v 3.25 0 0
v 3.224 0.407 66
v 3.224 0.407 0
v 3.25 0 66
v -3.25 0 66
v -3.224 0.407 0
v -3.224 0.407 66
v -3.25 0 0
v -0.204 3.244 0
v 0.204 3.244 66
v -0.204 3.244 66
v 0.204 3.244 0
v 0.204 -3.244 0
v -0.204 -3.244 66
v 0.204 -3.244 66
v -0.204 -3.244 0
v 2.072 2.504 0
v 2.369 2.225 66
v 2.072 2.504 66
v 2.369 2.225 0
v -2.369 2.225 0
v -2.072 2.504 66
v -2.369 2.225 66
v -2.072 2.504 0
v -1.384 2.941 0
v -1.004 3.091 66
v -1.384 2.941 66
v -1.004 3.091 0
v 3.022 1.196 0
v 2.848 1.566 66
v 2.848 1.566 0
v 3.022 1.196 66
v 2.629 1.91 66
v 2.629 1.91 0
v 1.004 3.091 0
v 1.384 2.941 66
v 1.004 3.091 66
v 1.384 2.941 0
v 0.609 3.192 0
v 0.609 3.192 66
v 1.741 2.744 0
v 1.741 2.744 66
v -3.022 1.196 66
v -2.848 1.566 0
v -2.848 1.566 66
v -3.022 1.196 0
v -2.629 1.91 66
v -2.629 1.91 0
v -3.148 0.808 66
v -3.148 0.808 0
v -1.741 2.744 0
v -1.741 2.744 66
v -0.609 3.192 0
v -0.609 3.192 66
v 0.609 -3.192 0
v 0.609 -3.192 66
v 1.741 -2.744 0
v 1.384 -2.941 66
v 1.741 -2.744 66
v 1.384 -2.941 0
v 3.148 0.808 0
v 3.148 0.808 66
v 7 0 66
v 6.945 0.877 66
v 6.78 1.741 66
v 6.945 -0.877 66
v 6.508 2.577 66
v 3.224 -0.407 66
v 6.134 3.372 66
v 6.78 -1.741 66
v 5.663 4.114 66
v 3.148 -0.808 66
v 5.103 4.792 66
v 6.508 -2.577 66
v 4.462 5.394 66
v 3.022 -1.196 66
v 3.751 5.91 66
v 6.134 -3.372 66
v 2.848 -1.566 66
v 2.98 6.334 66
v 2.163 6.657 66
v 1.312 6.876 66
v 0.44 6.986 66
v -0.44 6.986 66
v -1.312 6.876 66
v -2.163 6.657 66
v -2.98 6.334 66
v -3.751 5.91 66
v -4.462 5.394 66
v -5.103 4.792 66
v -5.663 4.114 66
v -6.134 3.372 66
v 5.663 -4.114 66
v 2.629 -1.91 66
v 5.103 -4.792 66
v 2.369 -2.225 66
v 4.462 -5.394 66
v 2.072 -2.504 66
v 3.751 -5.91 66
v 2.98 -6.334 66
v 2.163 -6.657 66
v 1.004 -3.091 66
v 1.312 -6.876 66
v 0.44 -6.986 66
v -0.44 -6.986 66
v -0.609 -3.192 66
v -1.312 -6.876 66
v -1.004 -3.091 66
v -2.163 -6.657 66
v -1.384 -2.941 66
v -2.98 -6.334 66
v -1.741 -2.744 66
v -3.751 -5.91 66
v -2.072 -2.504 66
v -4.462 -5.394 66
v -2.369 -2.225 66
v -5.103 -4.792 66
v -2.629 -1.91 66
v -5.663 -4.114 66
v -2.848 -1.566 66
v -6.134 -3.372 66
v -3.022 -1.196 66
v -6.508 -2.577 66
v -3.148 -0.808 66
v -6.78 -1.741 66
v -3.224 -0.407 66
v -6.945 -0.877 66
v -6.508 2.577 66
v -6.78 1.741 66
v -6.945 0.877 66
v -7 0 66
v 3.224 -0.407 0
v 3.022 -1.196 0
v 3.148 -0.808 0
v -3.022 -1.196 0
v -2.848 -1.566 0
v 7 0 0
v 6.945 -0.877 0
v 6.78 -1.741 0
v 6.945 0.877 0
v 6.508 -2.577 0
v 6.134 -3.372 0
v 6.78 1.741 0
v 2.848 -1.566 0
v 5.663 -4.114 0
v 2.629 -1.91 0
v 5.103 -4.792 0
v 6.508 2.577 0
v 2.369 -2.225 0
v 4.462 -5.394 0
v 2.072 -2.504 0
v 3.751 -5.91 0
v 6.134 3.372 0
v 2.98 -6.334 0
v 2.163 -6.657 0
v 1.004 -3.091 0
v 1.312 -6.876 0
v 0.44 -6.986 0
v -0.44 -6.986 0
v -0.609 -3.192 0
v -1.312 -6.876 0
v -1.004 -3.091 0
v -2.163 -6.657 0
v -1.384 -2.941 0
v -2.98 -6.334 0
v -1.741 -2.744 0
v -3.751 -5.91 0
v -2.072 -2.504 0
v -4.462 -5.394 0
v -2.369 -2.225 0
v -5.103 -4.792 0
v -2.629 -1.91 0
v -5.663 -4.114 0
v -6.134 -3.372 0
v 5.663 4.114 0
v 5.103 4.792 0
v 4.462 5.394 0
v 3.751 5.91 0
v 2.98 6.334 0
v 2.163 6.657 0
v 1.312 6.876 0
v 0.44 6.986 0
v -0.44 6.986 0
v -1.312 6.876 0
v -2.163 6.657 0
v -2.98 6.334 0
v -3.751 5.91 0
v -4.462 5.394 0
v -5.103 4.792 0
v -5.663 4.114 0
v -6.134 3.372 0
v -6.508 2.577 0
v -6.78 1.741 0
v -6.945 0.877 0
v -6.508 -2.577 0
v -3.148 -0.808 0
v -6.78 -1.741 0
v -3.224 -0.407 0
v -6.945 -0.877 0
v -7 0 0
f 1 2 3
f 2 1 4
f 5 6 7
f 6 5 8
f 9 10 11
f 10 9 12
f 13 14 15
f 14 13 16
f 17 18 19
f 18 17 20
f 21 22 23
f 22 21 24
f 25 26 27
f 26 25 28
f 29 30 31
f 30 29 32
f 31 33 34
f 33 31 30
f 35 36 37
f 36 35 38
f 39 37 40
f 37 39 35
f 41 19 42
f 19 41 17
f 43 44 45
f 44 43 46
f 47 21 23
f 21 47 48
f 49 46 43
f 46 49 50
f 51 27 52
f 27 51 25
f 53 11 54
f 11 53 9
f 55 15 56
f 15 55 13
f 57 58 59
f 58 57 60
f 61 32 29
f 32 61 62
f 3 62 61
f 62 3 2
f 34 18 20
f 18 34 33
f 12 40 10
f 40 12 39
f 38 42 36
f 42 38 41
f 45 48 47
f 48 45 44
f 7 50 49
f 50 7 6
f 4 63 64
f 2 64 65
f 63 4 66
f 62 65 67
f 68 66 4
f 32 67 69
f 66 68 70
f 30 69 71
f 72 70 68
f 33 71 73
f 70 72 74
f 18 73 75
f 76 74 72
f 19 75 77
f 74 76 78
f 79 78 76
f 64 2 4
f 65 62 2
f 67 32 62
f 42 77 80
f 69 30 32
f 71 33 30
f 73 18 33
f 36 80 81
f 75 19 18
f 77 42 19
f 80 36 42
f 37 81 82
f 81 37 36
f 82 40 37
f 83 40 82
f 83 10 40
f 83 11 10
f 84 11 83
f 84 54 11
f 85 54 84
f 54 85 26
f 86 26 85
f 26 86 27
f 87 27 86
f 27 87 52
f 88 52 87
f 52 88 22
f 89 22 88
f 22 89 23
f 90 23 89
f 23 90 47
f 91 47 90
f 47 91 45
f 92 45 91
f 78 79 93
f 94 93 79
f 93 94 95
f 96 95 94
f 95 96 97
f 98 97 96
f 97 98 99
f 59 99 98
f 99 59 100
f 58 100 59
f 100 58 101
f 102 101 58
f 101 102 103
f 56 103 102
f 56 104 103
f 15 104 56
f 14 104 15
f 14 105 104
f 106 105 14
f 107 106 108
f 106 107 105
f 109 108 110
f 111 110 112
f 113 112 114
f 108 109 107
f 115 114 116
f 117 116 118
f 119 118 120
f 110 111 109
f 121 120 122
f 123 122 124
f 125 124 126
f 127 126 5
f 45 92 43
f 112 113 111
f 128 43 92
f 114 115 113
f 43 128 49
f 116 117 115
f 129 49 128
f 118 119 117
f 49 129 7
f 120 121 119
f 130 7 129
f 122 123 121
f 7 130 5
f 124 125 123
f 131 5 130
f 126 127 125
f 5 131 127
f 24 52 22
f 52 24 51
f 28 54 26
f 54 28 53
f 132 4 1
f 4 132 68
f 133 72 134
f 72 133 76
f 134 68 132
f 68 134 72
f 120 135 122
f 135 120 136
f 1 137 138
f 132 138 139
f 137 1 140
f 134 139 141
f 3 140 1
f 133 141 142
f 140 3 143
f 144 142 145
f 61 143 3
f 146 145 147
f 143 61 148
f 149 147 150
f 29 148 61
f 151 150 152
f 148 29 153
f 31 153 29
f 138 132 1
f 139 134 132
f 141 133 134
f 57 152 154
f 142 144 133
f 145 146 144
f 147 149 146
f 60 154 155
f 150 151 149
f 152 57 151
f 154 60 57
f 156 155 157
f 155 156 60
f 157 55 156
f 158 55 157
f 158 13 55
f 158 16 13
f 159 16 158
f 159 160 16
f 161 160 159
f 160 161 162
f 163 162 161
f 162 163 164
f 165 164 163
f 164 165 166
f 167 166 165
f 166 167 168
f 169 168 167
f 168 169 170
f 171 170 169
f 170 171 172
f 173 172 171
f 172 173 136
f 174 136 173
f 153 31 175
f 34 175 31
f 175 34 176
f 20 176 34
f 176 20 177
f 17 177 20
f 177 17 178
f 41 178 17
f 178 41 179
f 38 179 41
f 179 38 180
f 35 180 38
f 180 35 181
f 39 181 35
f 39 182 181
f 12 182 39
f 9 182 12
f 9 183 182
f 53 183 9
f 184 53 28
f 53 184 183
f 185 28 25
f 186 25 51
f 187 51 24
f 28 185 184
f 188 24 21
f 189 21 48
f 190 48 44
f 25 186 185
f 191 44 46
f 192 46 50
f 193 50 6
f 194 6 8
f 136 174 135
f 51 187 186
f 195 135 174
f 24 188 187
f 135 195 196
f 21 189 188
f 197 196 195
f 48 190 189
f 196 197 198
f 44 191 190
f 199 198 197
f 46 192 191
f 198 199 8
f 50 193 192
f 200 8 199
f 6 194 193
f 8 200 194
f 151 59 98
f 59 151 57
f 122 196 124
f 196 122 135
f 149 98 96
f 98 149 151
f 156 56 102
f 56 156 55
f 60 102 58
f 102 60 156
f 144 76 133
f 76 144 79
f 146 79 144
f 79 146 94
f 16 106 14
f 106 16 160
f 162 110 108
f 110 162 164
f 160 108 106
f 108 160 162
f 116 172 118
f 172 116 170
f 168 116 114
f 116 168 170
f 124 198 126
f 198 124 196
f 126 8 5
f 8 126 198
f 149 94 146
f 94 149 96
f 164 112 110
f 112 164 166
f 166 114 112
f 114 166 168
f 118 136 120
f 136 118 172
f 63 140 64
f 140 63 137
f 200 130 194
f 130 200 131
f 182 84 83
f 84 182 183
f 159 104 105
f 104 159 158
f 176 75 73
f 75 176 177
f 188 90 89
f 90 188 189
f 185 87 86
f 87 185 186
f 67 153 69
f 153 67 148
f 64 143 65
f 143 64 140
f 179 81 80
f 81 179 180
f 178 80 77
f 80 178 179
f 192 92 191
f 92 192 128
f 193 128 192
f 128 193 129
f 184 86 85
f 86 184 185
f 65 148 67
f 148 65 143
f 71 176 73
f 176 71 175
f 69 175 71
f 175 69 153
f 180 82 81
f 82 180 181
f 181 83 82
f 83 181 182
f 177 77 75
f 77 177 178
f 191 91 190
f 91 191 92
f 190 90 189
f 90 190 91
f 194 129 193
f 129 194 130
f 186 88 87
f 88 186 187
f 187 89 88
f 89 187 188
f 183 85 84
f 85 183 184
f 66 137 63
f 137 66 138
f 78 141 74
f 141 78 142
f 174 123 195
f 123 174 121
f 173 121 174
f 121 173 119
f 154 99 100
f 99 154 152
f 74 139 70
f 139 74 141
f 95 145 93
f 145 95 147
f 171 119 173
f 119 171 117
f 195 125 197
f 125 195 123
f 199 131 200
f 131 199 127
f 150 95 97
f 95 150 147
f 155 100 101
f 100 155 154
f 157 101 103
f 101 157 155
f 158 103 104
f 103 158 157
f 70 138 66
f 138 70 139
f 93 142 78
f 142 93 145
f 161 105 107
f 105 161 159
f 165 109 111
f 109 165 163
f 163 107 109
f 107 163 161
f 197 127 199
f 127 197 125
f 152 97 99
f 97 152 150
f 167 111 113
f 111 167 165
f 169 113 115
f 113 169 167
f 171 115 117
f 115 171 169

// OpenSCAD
$fn = 50;


difference() {
	union() {
		cylinder(h = 66, r = 7.0000000000);
	}
	union() {
		translate(v = [0.0000000000, 0.0000000000, -100.0000000000]) {
			cylinder(h = 200, r = 3.2500000000);
		}
		translate(v = [0.0000000000, 0.0000000000, -100.0000000000]) {
			cylinder(h = 200, r = 3.2500000000);
		}
		translate(v = [0.0000000000, 0.0000000000, -100.0000000000]) {
			cylinder(h = 200, r = 3.2500000000);
		}
		translate(v = [0.0000000000, 0.0000000000, -100.0000000000]) {
			cylinder(h = 200, r = 3.2500000000);
		}
	}
}
